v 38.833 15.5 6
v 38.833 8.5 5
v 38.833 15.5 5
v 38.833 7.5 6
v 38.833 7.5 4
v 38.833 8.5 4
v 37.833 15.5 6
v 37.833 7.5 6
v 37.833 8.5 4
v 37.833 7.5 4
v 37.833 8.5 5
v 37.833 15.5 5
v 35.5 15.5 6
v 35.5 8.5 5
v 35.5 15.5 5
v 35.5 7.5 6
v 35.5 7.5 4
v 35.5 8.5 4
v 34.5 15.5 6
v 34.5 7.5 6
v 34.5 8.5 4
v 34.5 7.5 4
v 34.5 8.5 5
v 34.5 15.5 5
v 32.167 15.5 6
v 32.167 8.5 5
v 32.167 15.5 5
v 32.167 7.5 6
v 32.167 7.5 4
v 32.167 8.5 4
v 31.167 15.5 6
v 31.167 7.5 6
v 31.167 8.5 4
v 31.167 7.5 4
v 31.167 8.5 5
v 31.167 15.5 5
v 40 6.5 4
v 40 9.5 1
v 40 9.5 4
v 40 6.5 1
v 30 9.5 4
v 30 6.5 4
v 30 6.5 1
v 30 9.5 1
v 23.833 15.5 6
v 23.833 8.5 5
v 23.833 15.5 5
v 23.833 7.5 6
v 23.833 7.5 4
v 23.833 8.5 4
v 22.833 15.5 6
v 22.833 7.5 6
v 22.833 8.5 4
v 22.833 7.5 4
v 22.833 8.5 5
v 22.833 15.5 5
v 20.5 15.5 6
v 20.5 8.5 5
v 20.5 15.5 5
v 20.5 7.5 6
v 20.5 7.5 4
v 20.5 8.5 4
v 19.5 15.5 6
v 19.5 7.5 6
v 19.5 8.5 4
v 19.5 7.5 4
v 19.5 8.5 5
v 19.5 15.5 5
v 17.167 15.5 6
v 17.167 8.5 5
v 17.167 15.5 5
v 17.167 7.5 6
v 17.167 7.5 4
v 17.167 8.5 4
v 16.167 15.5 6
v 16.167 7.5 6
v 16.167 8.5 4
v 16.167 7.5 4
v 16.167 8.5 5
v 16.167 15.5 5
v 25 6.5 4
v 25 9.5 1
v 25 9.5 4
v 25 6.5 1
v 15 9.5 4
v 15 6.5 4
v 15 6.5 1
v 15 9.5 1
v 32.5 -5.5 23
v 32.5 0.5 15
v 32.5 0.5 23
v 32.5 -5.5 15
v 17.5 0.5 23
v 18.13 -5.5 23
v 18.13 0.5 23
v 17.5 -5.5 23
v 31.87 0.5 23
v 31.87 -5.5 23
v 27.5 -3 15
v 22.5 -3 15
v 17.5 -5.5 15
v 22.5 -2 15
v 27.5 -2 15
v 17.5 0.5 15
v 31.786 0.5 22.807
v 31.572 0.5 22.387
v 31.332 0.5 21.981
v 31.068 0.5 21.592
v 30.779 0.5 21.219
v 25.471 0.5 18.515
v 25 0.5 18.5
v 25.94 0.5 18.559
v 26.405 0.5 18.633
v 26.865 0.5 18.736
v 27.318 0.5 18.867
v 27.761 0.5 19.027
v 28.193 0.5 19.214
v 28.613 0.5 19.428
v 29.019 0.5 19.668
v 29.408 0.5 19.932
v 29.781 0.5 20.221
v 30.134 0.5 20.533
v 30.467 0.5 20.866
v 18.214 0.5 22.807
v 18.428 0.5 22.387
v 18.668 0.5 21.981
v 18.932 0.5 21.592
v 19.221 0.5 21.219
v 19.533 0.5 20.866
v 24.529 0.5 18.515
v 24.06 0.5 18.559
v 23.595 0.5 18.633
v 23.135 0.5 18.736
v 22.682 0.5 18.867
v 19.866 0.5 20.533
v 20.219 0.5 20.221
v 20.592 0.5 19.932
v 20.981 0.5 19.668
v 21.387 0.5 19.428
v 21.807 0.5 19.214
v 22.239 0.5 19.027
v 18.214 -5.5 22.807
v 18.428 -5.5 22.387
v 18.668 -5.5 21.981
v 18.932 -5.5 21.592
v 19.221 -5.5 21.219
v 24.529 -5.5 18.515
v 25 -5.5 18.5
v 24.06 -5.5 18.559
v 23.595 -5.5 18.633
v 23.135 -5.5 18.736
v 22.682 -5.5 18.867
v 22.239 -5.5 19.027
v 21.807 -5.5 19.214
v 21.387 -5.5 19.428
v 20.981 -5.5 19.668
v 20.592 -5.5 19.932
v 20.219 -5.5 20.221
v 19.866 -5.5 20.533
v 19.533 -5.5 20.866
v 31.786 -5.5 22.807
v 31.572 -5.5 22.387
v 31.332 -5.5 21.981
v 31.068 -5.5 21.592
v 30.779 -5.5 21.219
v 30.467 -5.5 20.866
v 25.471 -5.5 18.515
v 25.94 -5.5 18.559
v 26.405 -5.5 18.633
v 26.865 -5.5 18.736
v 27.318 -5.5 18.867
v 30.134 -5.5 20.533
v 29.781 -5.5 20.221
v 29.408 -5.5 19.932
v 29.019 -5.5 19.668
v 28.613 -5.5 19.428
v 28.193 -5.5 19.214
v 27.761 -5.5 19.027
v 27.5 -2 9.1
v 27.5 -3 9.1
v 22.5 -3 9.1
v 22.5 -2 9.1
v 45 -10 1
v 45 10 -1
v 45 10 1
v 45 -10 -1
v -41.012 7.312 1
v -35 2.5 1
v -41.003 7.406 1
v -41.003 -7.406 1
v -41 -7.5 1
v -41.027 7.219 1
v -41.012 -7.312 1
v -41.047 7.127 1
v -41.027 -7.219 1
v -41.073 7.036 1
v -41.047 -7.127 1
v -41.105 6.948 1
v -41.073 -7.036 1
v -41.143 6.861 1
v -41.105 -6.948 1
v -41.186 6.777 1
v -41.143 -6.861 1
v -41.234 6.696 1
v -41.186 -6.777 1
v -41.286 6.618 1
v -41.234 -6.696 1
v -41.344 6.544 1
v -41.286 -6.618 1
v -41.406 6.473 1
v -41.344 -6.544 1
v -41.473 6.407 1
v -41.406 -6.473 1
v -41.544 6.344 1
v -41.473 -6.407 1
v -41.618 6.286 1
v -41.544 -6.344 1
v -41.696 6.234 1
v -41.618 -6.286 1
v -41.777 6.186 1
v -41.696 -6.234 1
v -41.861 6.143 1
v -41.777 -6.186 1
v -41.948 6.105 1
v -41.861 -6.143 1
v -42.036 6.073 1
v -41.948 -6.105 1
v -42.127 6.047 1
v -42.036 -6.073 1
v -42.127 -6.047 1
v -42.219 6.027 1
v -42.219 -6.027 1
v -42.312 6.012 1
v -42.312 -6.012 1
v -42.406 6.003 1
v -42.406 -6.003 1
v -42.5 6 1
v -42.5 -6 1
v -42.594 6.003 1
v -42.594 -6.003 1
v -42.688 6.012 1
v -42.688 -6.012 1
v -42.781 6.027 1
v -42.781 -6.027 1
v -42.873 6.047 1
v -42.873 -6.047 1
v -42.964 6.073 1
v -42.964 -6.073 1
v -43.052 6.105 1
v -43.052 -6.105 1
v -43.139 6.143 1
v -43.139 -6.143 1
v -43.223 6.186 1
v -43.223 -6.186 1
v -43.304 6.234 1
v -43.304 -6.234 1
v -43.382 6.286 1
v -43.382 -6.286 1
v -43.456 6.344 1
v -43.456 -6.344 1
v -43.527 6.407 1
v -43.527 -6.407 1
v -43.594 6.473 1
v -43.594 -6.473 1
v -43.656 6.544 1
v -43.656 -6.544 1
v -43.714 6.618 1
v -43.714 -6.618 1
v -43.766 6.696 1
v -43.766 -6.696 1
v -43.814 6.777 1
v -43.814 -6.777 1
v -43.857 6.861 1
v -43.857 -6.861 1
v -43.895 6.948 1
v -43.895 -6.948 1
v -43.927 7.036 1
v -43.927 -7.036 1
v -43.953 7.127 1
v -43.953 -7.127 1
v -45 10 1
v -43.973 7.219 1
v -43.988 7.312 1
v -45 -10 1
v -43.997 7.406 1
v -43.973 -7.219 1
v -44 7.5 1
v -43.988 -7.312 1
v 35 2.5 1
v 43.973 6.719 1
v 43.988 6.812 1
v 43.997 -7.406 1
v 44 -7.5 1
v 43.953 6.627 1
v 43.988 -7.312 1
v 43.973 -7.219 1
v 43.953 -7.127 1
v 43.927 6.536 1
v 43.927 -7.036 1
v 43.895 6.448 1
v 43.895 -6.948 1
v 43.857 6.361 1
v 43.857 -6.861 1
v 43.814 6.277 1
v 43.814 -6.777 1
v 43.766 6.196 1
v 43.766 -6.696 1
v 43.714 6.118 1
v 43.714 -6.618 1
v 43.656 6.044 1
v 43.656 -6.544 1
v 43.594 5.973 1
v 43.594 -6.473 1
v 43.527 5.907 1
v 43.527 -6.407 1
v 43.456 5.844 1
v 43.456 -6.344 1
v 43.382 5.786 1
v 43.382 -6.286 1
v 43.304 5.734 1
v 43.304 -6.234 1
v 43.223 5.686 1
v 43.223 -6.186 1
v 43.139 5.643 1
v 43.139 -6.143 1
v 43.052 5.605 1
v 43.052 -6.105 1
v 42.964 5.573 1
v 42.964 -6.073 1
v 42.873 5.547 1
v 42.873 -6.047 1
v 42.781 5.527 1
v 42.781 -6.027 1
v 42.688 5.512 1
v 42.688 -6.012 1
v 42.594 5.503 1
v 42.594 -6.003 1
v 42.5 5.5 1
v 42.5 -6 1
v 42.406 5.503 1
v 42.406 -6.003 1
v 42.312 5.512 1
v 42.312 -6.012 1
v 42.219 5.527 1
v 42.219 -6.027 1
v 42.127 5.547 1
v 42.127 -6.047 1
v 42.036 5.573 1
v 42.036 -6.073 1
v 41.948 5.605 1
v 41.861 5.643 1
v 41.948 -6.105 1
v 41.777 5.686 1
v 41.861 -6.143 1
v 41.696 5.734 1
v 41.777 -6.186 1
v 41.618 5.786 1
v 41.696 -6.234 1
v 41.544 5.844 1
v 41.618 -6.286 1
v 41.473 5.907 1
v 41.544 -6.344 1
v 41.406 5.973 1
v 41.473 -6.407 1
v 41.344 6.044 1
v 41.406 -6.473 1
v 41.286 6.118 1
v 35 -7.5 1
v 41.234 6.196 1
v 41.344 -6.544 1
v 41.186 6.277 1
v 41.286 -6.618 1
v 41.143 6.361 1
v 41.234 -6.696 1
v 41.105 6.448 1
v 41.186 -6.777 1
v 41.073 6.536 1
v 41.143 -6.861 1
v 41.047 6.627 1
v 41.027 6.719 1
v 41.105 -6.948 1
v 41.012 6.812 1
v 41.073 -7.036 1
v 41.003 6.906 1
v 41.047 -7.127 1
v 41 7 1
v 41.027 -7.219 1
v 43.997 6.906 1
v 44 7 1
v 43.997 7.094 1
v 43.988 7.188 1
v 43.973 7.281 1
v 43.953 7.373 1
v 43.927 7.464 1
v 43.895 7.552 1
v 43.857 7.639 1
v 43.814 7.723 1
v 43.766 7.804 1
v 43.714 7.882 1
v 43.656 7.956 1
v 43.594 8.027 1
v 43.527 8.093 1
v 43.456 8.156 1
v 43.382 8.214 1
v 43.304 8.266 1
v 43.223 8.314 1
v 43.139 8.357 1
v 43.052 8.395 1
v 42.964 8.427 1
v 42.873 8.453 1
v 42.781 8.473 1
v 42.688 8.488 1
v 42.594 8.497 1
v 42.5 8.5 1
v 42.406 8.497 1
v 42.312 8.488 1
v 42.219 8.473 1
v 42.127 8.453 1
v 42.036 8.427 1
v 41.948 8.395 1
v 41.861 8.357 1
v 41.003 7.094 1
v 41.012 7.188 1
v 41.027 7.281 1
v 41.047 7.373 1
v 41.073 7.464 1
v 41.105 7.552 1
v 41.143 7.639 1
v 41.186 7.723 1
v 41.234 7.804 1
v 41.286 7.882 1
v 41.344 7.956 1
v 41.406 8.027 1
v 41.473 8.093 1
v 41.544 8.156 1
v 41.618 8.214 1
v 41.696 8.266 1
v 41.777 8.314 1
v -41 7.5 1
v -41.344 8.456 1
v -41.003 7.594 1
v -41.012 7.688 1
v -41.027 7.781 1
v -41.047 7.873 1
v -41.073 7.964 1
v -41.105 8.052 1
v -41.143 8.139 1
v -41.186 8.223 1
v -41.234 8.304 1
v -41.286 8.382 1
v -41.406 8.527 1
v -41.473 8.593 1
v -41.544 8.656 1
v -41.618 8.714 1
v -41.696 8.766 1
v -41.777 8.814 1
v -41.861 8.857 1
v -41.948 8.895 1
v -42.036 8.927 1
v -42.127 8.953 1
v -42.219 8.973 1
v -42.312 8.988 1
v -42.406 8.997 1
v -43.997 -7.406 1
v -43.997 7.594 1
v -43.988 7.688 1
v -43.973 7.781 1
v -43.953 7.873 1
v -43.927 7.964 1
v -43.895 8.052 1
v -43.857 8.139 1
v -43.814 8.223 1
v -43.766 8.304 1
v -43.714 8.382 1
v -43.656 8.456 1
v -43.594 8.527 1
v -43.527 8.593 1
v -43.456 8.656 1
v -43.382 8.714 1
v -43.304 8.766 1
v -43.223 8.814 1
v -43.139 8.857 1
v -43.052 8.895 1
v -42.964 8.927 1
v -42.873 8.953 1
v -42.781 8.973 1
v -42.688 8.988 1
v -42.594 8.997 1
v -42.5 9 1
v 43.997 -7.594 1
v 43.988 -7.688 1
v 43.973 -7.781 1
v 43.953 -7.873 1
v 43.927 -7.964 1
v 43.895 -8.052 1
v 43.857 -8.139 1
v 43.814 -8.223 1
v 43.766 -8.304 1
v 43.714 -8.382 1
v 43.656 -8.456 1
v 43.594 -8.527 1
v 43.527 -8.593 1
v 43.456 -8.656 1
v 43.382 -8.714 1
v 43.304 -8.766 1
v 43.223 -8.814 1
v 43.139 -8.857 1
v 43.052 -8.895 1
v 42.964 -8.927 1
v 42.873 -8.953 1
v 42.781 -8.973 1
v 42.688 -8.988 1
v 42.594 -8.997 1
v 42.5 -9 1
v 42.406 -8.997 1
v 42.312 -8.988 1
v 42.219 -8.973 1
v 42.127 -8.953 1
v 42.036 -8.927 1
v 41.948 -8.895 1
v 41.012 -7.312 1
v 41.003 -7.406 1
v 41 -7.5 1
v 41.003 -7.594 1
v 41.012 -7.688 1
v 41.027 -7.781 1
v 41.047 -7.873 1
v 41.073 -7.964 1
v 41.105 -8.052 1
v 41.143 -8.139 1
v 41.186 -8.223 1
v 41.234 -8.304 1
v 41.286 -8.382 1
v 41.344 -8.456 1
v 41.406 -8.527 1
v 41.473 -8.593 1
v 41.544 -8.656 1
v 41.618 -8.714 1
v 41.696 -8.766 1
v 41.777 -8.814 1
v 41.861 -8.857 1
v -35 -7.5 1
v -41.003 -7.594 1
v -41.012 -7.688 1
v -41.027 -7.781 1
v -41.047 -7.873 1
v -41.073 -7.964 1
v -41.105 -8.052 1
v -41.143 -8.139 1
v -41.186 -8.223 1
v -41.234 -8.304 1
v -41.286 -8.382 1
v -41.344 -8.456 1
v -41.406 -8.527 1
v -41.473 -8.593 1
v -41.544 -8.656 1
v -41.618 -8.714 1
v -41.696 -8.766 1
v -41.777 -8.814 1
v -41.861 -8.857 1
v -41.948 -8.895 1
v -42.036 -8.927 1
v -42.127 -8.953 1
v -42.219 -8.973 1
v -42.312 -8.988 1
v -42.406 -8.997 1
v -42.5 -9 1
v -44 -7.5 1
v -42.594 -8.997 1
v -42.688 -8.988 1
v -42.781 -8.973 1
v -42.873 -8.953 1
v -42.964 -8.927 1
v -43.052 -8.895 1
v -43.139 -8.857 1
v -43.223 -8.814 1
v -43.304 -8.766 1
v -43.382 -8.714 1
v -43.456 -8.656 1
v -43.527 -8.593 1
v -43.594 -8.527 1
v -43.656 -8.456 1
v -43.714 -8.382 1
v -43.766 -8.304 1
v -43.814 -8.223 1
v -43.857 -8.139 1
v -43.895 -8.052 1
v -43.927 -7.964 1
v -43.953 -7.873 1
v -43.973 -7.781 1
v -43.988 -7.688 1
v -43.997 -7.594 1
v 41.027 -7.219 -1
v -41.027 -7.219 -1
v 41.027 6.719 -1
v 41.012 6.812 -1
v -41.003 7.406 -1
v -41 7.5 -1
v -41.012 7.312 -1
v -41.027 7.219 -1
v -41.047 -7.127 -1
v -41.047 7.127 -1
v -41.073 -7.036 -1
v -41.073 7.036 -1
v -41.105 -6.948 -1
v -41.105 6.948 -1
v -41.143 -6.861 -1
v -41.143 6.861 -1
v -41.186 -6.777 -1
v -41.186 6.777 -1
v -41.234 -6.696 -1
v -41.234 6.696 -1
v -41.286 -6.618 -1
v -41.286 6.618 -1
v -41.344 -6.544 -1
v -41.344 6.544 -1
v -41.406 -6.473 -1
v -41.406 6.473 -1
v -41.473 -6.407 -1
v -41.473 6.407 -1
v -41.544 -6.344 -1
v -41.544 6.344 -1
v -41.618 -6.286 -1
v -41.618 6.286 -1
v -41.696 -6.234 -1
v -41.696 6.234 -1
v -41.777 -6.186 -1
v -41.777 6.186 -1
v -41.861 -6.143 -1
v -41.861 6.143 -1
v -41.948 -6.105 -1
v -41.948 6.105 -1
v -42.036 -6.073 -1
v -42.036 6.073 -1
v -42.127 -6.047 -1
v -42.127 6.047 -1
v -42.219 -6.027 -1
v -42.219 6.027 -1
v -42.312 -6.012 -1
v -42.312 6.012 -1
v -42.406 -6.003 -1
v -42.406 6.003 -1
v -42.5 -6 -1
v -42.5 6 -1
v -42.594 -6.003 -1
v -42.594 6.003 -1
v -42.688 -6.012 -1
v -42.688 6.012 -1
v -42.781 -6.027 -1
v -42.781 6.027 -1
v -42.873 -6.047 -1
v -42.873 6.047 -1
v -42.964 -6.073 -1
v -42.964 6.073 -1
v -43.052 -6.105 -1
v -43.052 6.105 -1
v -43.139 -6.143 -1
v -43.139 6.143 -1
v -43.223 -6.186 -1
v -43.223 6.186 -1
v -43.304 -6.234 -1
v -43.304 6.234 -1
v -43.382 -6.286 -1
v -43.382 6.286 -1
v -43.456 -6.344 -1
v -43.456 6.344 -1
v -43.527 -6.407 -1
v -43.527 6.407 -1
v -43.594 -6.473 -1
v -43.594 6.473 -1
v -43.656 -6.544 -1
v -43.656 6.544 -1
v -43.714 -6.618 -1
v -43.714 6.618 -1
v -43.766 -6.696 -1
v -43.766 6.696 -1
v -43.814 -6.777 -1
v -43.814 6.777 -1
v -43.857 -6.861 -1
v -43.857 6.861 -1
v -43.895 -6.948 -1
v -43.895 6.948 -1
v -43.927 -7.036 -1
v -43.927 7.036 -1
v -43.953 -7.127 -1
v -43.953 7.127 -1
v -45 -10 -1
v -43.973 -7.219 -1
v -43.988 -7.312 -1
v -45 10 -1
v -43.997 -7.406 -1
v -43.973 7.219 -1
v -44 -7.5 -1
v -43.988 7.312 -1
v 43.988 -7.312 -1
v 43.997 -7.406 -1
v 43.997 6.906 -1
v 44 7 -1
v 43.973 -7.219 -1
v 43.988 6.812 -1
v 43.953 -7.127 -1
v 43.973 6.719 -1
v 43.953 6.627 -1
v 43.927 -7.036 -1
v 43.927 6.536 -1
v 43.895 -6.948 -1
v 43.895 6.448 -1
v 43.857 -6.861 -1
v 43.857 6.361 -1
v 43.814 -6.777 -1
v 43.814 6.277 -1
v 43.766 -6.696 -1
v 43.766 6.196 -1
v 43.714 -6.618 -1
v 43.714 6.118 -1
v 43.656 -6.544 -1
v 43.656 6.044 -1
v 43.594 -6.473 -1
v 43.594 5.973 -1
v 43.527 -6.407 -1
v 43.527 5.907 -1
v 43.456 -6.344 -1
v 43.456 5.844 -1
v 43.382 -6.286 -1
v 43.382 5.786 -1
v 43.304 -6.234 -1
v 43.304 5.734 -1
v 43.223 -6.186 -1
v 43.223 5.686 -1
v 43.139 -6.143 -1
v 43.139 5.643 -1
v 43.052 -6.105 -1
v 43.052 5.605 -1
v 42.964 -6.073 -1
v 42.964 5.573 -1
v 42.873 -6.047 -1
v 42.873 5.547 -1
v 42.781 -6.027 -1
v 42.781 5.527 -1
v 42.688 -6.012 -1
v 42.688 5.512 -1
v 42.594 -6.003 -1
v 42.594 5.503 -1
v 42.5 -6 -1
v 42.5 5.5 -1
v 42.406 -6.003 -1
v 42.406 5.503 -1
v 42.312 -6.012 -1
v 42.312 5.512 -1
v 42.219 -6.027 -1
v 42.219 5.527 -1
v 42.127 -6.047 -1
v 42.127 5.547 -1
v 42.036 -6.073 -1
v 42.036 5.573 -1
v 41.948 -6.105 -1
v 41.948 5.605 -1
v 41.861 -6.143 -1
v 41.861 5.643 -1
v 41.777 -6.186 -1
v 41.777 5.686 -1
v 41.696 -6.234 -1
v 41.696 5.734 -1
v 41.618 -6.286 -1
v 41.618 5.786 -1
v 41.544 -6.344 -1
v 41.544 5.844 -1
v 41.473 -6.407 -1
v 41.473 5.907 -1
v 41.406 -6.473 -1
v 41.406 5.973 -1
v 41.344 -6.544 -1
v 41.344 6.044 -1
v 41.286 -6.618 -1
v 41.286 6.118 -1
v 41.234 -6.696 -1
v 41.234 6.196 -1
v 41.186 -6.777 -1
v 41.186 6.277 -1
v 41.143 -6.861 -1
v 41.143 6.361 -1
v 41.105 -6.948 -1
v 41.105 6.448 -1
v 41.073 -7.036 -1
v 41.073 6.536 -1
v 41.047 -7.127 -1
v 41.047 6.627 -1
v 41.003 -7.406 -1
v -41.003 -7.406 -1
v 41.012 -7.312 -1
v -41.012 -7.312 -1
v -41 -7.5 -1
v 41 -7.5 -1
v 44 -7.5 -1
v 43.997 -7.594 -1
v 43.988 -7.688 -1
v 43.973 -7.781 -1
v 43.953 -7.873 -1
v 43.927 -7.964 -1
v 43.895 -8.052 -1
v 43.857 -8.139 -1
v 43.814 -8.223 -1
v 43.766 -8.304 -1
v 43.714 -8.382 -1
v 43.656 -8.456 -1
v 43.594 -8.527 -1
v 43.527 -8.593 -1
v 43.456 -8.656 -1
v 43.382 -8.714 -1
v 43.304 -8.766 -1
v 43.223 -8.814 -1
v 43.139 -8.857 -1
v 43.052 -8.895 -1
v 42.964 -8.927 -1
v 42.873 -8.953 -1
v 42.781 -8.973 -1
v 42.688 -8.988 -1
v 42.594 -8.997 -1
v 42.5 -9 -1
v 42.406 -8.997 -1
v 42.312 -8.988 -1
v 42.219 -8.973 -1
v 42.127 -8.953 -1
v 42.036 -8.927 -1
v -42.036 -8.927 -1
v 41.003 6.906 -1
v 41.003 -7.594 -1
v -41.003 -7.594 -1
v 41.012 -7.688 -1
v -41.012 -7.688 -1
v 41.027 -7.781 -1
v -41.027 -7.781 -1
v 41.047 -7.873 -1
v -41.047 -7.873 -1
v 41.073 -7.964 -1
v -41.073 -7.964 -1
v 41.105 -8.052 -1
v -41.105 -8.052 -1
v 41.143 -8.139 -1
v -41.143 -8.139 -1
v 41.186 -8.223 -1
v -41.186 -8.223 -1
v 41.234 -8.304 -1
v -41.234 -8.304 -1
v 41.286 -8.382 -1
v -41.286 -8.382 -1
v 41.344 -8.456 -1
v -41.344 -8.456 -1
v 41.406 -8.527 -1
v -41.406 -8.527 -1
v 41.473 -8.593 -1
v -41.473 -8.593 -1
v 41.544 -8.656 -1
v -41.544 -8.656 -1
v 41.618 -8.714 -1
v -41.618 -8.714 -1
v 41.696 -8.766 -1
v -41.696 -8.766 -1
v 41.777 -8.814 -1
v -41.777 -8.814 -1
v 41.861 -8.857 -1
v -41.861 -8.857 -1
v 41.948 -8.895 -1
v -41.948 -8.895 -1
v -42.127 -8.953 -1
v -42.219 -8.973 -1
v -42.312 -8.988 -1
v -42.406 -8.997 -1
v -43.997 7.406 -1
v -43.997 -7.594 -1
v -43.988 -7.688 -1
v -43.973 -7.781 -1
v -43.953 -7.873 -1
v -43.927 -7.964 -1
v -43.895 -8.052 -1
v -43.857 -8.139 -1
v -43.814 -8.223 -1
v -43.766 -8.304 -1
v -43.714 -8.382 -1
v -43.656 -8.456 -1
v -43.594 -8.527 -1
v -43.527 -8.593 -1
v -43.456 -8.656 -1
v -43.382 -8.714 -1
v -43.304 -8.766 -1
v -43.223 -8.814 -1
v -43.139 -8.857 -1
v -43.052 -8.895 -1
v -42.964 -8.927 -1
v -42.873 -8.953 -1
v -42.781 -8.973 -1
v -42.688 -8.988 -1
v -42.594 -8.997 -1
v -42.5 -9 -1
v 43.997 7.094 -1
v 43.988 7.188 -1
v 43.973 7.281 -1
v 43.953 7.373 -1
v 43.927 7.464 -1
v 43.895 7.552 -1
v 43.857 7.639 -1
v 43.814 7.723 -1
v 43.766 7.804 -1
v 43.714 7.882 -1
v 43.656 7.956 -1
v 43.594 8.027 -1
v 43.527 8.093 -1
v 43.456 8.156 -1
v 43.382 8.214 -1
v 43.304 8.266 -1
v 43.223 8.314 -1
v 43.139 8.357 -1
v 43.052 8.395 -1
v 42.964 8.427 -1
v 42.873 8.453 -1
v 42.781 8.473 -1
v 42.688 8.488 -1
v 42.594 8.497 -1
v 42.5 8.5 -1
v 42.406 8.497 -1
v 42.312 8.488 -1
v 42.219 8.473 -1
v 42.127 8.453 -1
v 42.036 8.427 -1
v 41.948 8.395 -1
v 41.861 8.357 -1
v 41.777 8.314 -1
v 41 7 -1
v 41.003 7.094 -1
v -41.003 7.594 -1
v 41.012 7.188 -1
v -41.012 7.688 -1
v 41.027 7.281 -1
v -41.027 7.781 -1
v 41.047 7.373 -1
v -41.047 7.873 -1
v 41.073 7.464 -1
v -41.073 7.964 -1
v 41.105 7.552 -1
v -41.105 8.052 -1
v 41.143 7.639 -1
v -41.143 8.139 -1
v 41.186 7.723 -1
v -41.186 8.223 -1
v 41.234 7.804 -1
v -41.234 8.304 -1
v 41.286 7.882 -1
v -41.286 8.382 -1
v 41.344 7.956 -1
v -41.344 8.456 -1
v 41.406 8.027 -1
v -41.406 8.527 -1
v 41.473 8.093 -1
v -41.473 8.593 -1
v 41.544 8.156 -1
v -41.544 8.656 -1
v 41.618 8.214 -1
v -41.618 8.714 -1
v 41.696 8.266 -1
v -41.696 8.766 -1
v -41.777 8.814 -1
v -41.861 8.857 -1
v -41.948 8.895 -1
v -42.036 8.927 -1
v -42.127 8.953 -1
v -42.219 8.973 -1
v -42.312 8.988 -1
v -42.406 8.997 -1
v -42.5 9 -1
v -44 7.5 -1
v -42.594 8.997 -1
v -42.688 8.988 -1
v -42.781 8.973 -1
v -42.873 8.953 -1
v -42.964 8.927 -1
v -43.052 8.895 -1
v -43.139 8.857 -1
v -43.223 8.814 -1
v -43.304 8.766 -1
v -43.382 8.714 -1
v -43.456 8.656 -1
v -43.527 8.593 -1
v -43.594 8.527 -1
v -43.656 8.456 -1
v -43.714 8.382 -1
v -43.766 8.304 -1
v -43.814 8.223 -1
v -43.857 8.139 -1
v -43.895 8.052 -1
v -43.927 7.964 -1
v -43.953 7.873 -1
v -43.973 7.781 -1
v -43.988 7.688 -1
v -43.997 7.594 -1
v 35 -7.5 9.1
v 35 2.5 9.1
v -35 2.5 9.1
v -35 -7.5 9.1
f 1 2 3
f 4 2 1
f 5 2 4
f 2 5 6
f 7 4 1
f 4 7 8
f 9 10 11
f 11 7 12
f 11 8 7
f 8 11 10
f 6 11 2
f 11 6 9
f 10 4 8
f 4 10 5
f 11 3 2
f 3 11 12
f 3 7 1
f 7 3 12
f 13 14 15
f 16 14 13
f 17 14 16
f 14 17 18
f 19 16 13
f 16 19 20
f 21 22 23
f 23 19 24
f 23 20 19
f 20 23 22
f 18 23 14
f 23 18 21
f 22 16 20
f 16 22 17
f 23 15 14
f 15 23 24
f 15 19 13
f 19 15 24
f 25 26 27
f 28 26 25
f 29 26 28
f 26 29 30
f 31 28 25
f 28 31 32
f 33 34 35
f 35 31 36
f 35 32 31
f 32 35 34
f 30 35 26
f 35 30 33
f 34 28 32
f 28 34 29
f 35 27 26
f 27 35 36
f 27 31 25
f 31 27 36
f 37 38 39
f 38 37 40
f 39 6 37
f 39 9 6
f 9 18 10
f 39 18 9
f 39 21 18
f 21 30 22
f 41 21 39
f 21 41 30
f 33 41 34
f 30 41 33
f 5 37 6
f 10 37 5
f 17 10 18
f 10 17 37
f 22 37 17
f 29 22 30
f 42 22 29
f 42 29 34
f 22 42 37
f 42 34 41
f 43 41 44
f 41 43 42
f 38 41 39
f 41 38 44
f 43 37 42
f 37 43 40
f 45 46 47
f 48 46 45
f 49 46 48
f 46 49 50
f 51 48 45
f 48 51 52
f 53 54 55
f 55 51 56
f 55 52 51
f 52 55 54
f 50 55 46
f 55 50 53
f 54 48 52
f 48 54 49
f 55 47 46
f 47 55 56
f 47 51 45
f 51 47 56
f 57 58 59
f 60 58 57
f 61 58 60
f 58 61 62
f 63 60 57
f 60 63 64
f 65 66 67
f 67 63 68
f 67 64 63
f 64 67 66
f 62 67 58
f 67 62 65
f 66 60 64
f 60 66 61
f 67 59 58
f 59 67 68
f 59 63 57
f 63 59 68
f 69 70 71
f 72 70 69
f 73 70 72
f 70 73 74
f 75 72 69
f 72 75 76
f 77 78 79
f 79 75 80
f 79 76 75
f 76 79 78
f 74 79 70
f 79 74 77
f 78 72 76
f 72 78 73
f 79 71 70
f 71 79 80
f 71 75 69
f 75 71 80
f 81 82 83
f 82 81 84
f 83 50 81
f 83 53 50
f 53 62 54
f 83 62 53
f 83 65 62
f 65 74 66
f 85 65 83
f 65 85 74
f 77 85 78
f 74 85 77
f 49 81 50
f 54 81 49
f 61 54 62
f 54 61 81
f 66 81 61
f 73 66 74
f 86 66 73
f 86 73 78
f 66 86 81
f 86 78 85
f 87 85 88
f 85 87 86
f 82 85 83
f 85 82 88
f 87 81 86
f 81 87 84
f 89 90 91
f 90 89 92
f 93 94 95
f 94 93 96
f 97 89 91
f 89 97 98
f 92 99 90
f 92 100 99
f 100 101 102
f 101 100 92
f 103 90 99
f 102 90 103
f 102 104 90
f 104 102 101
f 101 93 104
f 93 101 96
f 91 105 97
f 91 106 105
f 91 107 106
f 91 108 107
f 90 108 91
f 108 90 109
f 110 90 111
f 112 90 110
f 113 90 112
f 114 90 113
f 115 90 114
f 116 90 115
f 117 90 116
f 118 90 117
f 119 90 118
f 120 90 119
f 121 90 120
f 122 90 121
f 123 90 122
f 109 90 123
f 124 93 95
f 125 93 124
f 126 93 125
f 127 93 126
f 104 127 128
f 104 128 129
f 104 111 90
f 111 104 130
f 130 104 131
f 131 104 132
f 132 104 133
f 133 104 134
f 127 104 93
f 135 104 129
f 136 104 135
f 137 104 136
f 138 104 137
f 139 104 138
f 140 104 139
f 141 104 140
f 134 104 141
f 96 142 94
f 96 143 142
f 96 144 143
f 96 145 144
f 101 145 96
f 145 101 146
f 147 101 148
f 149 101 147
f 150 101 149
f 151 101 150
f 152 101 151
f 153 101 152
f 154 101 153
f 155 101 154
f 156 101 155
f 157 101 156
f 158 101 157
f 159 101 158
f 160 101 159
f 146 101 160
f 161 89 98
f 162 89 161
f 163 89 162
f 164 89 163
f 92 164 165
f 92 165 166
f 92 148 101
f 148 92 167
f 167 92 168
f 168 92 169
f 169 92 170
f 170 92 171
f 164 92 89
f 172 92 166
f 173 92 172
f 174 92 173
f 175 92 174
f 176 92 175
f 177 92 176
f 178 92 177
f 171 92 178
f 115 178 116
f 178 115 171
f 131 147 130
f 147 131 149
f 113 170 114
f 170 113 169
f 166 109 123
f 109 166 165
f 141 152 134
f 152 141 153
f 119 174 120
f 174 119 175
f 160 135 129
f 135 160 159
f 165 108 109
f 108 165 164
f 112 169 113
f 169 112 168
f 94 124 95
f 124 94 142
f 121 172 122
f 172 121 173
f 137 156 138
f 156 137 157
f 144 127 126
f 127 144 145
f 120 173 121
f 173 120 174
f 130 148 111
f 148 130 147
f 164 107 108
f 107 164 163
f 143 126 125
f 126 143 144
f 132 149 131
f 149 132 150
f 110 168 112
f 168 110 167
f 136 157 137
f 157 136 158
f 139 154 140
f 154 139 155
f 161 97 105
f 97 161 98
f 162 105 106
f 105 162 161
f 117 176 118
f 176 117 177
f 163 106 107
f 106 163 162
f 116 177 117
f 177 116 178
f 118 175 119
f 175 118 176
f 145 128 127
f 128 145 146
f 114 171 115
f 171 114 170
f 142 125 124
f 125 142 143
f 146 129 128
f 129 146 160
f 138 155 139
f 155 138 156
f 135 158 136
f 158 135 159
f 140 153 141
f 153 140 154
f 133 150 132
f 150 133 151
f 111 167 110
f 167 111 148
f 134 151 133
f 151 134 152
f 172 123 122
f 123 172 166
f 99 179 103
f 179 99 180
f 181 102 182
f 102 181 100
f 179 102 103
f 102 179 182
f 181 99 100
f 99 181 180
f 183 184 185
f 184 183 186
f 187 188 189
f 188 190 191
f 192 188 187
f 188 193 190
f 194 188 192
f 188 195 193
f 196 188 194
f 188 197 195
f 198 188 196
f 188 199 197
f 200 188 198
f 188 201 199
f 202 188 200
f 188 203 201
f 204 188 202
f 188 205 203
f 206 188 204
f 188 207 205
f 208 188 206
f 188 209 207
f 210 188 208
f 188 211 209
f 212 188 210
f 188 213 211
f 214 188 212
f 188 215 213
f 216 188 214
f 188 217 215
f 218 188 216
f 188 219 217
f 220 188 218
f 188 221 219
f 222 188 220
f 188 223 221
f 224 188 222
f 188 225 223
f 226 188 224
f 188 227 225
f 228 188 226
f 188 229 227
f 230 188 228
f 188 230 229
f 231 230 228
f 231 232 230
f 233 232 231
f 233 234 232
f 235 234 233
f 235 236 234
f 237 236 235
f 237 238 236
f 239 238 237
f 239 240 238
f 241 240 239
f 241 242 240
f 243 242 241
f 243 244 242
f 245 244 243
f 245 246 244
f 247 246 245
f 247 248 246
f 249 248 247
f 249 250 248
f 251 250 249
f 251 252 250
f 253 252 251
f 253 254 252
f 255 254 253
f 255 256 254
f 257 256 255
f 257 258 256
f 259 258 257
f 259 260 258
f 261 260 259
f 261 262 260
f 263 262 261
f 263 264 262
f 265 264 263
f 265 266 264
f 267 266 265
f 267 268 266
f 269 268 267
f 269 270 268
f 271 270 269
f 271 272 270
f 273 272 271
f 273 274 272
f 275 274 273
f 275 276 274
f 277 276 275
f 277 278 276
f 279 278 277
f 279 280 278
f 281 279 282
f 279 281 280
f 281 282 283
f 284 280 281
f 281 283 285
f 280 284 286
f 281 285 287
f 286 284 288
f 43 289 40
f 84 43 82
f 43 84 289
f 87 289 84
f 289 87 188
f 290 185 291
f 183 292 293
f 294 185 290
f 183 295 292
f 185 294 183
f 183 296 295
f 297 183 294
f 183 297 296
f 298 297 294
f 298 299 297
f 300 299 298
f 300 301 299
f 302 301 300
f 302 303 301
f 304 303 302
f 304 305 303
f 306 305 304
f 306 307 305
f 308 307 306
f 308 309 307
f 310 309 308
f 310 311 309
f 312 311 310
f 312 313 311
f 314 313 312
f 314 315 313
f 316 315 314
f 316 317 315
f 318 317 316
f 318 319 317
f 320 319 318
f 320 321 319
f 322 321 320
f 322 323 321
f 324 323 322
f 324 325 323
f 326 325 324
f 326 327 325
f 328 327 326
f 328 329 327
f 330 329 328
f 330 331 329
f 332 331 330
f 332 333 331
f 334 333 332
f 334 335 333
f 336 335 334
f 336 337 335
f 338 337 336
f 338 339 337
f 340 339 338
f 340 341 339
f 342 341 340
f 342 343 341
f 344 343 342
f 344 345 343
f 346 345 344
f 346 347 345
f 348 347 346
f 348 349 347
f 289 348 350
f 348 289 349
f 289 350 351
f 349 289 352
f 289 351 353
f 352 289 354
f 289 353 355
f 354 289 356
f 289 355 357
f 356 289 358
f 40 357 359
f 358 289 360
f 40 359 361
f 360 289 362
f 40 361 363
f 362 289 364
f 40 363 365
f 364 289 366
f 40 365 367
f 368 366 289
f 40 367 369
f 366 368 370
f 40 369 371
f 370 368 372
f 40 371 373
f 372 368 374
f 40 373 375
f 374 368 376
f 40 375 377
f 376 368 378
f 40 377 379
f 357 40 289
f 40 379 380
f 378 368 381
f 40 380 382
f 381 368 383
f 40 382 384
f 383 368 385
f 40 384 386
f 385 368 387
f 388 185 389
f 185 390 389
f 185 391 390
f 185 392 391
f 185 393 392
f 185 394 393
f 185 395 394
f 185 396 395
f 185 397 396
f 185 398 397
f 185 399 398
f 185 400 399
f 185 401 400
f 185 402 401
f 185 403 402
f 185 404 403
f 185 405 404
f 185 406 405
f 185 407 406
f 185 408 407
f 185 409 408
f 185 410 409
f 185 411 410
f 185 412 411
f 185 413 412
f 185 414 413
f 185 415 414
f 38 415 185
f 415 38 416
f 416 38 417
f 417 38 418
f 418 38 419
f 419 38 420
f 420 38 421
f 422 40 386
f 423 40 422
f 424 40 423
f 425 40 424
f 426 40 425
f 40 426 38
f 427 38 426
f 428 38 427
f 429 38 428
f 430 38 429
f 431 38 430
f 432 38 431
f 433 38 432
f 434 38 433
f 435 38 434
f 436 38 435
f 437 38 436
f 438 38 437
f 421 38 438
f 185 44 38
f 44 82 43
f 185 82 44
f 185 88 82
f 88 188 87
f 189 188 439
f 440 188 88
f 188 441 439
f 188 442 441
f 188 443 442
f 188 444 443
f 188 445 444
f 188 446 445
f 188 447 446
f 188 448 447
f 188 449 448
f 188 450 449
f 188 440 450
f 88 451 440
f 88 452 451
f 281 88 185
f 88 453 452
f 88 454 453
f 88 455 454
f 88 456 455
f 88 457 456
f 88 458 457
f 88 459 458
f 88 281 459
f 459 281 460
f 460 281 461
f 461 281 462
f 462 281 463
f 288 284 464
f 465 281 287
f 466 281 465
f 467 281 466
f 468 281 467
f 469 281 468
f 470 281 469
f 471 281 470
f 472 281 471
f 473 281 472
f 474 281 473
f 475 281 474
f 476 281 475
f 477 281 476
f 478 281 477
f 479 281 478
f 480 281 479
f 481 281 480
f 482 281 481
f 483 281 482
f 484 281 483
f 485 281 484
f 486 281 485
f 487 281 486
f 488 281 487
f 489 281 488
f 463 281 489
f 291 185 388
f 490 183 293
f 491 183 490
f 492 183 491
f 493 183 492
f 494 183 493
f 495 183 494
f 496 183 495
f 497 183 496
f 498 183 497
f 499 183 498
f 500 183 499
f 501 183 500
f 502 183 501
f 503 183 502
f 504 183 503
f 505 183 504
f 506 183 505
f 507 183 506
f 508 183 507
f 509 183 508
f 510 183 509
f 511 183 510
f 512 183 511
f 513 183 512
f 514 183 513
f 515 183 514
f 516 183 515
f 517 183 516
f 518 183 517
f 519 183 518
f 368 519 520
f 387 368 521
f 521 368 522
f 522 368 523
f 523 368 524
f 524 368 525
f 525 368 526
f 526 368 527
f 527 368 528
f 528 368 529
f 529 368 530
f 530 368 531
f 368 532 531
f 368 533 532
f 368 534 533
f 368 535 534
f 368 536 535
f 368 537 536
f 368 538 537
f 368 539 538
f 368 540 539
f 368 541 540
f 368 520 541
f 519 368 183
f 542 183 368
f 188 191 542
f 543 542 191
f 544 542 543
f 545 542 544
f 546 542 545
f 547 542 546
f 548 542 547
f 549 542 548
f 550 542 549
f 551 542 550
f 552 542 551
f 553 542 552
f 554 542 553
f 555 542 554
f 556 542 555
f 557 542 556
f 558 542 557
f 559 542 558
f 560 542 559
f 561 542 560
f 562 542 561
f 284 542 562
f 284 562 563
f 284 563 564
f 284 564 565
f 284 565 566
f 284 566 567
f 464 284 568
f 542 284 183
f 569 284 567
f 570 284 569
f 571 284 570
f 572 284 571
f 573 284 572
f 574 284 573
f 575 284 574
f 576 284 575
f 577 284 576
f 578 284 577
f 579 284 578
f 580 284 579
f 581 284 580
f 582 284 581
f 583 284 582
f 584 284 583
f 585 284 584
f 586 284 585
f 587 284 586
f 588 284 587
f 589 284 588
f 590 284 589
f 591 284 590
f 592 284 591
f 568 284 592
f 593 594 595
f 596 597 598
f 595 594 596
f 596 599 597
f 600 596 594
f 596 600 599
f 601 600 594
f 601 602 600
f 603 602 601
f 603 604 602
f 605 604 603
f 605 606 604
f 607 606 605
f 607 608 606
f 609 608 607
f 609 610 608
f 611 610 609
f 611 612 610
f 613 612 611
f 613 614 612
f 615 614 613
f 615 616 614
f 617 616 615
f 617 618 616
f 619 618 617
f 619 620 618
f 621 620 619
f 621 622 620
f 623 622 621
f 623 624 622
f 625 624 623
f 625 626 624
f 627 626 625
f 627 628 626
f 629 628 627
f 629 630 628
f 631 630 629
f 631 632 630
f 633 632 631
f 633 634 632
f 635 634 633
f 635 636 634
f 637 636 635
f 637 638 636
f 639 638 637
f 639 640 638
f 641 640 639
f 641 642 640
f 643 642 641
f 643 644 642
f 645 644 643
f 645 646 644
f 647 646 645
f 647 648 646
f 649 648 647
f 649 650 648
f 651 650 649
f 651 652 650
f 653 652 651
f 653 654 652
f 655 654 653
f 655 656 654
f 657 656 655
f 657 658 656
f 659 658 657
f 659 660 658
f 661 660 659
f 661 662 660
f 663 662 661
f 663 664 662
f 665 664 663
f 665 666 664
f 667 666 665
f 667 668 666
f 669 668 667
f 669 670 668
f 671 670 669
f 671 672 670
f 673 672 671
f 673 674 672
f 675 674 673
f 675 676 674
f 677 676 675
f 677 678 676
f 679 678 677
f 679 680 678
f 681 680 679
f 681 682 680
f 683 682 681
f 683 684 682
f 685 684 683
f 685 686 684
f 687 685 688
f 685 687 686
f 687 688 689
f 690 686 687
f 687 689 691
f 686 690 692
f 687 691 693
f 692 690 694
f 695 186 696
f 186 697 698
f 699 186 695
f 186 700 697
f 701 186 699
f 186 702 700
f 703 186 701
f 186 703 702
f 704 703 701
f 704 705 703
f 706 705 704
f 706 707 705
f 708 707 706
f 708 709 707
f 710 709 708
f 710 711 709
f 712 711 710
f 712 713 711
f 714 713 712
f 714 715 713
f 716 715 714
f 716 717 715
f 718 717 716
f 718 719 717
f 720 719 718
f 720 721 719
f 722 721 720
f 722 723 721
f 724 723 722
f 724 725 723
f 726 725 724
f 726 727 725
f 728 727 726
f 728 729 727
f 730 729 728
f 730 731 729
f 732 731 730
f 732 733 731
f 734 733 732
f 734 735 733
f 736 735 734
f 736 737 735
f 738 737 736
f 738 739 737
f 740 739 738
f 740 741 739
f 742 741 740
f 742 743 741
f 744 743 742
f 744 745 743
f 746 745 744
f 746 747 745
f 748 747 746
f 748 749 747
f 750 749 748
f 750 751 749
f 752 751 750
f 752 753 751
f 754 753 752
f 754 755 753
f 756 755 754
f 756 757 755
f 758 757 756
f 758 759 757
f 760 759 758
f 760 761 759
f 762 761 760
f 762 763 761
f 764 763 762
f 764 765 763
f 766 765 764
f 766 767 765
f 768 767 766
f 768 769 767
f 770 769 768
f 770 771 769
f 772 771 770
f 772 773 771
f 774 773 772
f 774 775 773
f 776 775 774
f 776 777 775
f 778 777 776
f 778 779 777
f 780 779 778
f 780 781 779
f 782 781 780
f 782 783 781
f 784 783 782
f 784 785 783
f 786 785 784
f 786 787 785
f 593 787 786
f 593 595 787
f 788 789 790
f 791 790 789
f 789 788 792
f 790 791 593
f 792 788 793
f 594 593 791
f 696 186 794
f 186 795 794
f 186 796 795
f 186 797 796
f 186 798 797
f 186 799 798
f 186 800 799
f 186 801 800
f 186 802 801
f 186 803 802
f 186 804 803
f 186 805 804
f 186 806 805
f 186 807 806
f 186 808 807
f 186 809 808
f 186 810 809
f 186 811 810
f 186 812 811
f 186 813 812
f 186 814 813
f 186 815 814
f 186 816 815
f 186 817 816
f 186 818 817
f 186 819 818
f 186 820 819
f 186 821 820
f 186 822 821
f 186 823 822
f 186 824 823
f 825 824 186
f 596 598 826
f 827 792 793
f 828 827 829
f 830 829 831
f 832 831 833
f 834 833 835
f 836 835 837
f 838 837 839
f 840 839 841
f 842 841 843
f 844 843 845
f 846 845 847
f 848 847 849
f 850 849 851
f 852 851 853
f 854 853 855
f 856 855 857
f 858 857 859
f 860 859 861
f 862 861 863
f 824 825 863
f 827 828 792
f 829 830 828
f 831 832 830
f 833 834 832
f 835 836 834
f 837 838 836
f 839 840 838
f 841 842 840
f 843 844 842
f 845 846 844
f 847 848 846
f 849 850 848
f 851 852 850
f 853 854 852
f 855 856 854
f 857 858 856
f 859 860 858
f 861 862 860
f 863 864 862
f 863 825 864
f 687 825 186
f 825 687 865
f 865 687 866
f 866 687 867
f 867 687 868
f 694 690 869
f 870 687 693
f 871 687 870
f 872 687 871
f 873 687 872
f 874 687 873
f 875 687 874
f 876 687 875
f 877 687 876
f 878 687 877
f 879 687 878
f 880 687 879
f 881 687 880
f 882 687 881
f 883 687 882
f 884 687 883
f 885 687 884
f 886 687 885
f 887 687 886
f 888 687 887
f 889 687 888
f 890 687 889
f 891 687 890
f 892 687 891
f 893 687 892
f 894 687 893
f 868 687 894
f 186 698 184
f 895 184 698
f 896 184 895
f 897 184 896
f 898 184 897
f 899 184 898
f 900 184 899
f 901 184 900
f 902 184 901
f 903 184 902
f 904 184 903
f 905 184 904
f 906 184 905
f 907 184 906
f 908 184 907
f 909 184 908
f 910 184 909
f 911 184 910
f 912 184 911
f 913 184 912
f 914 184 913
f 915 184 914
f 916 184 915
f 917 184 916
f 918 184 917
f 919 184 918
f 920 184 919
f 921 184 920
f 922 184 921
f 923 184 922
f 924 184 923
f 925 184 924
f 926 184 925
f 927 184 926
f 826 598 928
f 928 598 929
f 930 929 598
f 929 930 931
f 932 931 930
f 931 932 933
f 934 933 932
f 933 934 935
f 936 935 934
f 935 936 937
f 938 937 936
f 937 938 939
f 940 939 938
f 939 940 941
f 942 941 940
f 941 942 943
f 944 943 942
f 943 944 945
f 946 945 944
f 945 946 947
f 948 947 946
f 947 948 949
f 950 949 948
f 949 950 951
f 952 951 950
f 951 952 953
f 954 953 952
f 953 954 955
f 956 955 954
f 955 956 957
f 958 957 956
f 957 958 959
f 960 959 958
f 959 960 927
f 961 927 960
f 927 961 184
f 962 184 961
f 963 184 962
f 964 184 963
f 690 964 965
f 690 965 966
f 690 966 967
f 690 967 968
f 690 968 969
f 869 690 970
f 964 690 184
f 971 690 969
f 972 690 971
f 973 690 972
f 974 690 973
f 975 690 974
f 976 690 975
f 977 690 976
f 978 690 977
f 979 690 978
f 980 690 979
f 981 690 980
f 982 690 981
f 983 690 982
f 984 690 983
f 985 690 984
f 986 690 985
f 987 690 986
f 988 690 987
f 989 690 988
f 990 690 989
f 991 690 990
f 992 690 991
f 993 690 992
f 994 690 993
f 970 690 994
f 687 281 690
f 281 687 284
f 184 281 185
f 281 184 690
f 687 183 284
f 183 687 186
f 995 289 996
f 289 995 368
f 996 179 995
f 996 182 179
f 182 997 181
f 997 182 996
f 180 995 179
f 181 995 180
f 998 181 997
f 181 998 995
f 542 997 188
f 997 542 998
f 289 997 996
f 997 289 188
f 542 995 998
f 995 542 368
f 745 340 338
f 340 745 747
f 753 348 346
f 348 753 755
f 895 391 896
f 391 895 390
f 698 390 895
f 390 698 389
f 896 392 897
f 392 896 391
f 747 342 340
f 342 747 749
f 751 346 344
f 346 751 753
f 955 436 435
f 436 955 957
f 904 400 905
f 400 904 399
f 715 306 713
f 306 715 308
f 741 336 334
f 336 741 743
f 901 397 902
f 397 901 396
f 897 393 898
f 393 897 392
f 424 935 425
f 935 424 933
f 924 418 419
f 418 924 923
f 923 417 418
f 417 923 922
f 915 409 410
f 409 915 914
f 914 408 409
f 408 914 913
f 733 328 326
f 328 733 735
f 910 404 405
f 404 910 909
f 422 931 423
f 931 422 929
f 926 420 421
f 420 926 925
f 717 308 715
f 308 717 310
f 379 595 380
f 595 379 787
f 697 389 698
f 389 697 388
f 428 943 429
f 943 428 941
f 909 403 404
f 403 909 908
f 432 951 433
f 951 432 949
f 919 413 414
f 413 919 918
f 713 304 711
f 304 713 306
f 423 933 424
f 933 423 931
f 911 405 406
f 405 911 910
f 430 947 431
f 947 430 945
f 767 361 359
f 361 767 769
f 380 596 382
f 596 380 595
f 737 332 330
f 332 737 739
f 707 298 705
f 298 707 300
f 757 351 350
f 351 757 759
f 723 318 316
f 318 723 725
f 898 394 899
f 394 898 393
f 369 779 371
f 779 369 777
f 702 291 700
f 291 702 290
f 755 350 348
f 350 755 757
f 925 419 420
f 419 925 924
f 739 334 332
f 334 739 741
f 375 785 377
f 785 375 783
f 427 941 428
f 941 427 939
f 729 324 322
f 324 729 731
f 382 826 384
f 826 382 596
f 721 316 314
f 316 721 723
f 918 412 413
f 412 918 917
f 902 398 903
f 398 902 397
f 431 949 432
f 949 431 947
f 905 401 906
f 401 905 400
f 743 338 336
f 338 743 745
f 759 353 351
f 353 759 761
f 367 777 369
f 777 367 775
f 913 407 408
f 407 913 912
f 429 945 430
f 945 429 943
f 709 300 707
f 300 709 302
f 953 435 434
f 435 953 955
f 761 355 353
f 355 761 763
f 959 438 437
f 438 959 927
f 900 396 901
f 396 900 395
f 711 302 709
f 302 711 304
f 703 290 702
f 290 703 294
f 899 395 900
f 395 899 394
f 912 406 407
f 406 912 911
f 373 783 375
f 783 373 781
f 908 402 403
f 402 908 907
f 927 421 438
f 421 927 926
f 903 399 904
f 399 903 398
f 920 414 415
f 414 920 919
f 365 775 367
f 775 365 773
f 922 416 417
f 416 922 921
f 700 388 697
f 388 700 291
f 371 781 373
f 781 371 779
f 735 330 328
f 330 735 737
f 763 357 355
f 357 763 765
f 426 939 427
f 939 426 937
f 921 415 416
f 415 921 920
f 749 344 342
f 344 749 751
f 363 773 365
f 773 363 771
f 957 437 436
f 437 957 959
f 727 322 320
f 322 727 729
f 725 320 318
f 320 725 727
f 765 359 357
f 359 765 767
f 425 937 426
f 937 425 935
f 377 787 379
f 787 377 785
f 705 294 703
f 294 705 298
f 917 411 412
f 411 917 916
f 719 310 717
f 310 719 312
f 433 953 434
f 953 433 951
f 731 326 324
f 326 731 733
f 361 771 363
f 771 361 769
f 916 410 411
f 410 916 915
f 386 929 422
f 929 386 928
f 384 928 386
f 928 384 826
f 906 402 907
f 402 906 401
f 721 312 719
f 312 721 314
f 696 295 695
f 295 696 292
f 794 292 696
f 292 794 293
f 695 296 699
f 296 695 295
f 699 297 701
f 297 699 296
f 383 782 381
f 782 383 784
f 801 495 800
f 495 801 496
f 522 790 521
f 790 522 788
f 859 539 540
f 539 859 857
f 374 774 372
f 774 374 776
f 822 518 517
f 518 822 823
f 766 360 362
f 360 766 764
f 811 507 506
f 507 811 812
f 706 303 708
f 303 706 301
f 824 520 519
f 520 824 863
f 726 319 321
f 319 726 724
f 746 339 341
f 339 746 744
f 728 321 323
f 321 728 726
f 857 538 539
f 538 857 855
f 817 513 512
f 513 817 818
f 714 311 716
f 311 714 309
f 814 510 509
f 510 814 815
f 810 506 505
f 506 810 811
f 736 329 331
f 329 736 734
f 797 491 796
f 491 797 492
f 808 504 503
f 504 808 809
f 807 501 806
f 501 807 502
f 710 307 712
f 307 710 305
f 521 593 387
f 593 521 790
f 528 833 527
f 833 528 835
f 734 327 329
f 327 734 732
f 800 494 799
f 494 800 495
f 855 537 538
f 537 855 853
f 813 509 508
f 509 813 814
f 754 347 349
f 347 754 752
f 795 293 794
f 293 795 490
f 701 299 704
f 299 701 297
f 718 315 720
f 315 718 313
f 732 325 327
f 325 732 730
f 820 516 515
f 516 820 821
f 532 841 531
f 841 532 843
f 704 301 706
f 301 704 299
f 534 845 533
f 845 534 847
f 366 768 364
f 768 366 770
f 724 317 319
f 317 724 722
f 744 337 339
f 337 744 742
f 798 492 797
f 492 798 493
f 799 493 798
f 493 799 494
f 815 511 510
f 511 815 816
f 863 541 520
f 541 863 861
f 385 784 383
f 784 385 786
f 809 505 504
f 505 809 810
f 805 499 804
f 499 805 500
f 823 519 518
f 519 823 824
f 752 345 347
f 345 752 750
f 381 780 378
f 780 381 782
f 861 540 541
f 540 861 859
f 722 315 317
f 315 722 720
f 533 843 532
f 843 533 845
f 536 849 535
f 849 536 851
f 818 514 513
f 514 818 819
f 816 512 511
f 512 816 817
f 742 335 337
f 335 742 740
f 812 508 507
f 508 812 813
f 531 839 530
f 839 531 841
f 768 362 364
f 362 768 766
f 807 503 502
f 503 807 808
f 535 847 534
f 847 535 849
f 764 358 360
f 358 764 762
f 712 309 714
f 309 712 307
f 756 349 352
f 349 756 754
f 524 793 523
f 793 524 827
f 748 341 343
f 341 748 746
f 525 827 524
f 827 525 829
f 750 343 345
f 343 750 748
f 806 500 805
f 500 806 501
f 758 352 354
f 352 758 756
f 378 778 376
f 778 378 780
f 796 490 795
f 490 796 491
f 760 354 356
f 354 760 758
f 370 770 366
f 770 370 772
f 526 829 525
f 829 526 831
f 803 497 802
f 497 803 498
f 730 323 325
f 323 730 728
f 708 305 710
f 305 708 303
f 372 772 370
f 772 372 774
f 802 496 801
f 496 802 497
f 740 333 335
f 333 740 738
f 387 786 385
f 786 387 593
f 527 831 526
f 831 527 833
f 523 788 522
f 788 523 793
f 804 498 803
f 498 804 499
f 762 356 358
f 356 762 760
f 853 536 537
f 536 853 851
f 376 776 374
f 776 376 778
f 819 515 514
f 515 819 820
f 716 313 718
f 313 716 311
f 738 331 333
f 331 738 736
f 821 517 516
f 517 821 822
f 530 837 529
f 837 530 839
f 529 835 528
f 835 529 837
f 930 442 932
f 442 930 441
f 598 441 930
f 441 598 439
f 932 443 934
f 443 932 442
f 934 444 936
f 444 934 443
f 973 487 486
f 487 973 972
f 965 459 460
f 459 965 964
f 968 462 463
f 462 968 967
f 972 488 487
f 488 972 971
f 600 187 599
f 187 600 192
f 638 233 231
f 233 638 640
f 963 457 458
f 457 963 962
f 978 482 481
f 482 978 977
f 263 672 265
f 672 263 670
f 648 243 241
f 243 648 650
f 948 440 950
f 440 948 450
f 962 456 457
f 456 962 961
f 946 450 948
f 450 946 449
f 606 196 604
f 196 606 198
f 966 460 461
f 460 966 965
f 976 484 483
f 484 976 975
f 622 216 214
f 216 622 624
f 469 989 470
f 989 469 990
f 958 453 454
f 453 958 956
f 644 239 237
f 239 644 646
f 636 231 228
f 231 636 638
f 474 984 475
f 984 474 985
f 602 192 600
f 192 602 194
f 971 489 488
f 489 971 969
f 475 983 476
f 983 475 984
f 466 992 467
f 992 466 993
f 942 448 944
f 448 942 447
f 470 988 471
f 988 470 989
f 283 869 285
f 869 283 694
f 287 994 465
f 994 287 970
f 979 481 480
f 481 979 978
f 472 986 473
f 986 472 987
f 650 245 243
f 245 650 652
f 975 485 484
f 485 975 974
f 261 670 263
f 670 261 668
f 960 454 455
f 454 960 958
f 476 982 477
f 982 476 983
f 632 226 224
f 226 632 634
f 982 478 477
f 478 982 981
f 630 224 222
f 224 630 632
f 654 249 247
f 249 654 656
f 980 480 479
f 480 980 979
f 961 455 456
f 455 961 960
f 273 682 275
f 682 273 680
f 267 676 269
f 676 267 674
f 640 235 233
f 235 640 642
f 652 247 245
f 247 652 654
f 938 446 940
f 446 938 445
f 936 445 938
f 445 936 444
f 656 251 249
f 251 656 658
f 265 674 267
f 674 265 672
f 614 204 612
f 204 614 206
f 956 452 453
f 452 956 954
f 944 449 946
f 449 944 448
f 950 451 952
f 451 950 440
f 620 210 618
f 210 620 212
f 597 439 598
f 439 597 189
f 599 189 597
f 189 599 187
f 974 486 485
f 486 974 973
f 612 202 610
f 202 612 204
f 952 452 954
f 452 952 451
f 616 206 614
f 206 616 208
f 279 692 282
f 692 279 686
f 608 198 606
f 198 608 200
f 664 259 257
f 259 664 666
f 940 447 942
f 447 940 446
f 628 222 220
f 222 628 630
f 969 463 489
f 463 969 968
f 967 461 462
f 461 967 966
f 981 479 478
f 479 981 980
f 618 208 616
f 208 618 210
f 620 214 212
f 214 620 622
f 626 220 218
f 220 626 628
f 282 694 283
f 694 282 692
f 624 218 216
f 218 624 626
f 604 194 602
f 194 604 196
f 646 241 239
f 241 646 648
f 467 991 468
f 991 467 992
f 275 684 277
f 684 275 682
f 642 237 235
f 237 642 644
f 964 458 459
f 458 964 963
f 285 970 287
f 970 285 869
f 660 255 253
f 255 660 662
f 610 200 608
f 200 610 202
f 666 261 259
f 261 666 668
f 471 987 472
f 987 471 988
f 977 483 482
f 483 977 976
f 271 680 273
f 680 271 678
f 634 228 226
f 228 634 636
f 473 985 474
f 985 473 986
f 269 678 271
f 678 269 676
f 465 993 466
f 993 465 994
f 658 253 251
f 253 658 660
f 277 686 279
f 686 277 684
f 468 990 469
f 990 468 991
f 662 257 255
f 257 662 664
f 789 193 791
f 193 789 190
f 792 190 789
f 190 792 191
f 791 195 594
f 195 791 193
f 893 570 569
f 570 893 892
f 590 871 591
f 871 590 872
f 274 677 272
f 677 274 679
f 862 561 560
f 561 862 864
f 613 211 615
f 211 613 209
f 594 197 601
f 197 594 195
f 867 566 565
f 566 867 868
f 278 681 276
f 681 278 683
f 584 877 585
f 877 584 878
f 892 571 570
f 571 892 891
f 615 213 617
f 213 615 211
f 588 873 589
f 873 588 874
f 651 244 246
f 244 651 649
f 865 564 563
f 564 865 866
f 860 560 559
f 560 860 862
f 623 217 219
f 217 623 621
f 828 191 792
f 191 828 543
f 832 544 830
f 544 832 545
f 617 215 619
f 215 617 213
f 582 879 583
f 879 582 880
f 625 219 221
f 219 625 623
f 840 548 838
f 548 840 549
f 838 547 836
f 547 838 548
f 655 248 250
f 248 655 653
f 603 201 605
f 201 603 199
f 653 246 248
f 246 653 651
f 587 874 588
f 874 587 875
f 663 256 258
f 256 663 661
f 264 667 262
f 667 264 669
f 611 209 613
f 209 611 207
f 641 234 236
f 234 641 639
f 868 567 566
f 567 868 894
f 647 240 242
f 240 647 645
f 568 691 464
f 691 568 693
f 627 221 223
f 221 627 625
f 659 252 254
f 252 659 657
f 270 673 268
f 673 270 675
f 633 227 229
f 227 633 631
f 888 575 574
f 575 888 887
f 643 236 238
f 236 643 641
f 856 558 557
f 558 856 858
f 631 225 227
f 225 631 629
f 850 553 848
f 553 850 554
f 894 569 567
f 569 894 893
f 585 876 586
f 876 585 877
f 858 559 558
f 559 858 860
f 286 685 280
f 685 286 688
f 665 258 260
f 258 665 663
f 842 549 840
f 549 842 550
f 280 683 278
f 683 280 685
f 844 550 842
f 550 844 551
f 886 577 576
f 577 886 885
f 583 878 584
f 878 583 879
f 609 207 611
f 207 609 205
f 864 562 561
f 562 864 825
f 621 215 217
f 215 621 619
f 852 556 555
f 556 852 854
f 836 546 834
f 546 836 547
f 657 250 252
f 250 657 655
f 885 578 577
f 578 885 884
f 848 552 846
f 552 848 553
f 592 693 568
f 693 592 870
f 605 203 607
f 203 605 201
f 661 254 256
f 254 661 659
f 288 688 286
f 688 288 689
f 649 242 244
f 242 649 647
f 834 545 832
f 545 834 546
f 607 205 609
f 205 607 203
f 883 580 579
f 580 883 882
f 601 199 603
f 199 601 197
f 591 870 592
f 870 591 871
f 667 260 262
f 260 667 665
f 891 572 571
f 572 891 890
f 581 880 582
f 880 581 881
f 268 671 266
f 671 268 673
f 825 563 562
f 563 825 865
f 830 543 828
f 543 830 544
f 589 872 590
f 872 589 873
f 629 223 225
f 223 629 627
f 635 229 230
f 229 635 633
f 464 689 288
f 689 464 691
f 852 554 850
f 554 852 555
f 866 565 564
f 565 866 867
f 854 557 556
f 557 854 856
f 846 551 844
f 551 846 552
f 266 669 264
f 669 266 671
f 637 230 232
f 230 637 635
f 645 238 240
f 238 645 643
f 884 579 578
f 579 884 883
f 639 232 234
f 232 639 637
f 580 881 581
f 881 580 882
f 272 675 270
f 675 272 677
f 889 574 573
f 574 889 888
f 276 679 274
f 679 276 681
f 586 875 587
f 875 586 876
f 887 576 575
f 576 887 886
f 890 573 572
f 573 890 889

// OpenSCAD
//https://www.aliexpress.com/item/32672118555.html
spodok_dlzka = 90;
spodok_sirka = 20;
spodok_hrubka = 2;

piny_dlzka = 10;
piny_sirka = 3;
piny_hrubka = 4;

diera_d = 3 ; // d = diameter -> priemer

module diera()
{
    cylinder (h = 8, d = diera_d, center = true, $fn=100);
}
module spodok() 
{
    color( "red", 1.0 )
     cube([spodok_dlzka,spodok_sirka,spodok_hrubka], true);
}

module Lko()
{
   color( "silver", 1.0 )
    {
    translate([0,0,-3/2+1])
     cube([1,1,3], true);
    translate([-0.5,-0.5,0])
        cube([1,8,1], false);
    }
}

module buxa() //krabica na piny
{
    color( "black", 1.0 )
     cube([piny_dlzka,piny_sirka,piny_hrubka], true);
    
}

module piny()
{
    buxa();
    translate([piny_dlzka/3,0,piny_hrubka-1])
     Lko();
    translate([0,0,piny_hrubka-1])
     Lko();
    translate([-piny_dlzka/3,0,piny_hrubka-1])
     Lko();
}

module krabica() //sranda s posuvnou srandou
{
    color( "gray", 1.0 )
     cube([spodok_dlzka-20,spodok_sirka/2,      spodok_hrubka*5], true);
}

module cindzik() //to je ta sranda ktora sa posuva
{
    color( "silver", 1.0 )
    translate([0,0,10/2])
    cube([5,1,10], true);
    color( "yellow", 1.0 )
    difference()
    {
        translate([0,0,14])
        cube([15,6,8], true);
        translate([0,0,21])
            rotate ([90,0,0])
                cylinder (h = 10, r=7.5, center = true, $fn=100);
    }  
}

module diery()
{
    translate([spodok_dlzka/2 - 2.5,spodok_sirka/2 - 3,0])
     diera();
    
    translate([spodok_dlzka/2 - 2.5,-spodok_sirka/2 + 2.5,0])
     diera();
    
    translate([-spodok_dlzka/2 + 2.5,spodok_sirka/2 -2.5,0])
     diera();
    
    translate([-spodok_dlzka/2 + 2.5,-spodok_sirka/2 + 2.5,0])
     diera();
}
module celok()
{
   spodok();
   translate([spodok_dlzka/2 - piny_dlzka/2 - 5,spodok_sirka/2 - 2,piny_hrubka/2])
    piny(); 
    
   translate([spodok_dlzka/2 - piny_dlzka/2 - 5 - piny_dlzka*1.5,spodok_sirka/2 - 2,piny_hrubka/2])
    piny(); 
    
    translate([0,-2.5,spodok_hrubka*5/2 - 0.9])
    krabica();
    
    translate([spodok_dlzka/2 - 20,-2.5,spodok_hrubka*5/2])
    cindzik();
}


difference() 
{
celok();
diery();
}
